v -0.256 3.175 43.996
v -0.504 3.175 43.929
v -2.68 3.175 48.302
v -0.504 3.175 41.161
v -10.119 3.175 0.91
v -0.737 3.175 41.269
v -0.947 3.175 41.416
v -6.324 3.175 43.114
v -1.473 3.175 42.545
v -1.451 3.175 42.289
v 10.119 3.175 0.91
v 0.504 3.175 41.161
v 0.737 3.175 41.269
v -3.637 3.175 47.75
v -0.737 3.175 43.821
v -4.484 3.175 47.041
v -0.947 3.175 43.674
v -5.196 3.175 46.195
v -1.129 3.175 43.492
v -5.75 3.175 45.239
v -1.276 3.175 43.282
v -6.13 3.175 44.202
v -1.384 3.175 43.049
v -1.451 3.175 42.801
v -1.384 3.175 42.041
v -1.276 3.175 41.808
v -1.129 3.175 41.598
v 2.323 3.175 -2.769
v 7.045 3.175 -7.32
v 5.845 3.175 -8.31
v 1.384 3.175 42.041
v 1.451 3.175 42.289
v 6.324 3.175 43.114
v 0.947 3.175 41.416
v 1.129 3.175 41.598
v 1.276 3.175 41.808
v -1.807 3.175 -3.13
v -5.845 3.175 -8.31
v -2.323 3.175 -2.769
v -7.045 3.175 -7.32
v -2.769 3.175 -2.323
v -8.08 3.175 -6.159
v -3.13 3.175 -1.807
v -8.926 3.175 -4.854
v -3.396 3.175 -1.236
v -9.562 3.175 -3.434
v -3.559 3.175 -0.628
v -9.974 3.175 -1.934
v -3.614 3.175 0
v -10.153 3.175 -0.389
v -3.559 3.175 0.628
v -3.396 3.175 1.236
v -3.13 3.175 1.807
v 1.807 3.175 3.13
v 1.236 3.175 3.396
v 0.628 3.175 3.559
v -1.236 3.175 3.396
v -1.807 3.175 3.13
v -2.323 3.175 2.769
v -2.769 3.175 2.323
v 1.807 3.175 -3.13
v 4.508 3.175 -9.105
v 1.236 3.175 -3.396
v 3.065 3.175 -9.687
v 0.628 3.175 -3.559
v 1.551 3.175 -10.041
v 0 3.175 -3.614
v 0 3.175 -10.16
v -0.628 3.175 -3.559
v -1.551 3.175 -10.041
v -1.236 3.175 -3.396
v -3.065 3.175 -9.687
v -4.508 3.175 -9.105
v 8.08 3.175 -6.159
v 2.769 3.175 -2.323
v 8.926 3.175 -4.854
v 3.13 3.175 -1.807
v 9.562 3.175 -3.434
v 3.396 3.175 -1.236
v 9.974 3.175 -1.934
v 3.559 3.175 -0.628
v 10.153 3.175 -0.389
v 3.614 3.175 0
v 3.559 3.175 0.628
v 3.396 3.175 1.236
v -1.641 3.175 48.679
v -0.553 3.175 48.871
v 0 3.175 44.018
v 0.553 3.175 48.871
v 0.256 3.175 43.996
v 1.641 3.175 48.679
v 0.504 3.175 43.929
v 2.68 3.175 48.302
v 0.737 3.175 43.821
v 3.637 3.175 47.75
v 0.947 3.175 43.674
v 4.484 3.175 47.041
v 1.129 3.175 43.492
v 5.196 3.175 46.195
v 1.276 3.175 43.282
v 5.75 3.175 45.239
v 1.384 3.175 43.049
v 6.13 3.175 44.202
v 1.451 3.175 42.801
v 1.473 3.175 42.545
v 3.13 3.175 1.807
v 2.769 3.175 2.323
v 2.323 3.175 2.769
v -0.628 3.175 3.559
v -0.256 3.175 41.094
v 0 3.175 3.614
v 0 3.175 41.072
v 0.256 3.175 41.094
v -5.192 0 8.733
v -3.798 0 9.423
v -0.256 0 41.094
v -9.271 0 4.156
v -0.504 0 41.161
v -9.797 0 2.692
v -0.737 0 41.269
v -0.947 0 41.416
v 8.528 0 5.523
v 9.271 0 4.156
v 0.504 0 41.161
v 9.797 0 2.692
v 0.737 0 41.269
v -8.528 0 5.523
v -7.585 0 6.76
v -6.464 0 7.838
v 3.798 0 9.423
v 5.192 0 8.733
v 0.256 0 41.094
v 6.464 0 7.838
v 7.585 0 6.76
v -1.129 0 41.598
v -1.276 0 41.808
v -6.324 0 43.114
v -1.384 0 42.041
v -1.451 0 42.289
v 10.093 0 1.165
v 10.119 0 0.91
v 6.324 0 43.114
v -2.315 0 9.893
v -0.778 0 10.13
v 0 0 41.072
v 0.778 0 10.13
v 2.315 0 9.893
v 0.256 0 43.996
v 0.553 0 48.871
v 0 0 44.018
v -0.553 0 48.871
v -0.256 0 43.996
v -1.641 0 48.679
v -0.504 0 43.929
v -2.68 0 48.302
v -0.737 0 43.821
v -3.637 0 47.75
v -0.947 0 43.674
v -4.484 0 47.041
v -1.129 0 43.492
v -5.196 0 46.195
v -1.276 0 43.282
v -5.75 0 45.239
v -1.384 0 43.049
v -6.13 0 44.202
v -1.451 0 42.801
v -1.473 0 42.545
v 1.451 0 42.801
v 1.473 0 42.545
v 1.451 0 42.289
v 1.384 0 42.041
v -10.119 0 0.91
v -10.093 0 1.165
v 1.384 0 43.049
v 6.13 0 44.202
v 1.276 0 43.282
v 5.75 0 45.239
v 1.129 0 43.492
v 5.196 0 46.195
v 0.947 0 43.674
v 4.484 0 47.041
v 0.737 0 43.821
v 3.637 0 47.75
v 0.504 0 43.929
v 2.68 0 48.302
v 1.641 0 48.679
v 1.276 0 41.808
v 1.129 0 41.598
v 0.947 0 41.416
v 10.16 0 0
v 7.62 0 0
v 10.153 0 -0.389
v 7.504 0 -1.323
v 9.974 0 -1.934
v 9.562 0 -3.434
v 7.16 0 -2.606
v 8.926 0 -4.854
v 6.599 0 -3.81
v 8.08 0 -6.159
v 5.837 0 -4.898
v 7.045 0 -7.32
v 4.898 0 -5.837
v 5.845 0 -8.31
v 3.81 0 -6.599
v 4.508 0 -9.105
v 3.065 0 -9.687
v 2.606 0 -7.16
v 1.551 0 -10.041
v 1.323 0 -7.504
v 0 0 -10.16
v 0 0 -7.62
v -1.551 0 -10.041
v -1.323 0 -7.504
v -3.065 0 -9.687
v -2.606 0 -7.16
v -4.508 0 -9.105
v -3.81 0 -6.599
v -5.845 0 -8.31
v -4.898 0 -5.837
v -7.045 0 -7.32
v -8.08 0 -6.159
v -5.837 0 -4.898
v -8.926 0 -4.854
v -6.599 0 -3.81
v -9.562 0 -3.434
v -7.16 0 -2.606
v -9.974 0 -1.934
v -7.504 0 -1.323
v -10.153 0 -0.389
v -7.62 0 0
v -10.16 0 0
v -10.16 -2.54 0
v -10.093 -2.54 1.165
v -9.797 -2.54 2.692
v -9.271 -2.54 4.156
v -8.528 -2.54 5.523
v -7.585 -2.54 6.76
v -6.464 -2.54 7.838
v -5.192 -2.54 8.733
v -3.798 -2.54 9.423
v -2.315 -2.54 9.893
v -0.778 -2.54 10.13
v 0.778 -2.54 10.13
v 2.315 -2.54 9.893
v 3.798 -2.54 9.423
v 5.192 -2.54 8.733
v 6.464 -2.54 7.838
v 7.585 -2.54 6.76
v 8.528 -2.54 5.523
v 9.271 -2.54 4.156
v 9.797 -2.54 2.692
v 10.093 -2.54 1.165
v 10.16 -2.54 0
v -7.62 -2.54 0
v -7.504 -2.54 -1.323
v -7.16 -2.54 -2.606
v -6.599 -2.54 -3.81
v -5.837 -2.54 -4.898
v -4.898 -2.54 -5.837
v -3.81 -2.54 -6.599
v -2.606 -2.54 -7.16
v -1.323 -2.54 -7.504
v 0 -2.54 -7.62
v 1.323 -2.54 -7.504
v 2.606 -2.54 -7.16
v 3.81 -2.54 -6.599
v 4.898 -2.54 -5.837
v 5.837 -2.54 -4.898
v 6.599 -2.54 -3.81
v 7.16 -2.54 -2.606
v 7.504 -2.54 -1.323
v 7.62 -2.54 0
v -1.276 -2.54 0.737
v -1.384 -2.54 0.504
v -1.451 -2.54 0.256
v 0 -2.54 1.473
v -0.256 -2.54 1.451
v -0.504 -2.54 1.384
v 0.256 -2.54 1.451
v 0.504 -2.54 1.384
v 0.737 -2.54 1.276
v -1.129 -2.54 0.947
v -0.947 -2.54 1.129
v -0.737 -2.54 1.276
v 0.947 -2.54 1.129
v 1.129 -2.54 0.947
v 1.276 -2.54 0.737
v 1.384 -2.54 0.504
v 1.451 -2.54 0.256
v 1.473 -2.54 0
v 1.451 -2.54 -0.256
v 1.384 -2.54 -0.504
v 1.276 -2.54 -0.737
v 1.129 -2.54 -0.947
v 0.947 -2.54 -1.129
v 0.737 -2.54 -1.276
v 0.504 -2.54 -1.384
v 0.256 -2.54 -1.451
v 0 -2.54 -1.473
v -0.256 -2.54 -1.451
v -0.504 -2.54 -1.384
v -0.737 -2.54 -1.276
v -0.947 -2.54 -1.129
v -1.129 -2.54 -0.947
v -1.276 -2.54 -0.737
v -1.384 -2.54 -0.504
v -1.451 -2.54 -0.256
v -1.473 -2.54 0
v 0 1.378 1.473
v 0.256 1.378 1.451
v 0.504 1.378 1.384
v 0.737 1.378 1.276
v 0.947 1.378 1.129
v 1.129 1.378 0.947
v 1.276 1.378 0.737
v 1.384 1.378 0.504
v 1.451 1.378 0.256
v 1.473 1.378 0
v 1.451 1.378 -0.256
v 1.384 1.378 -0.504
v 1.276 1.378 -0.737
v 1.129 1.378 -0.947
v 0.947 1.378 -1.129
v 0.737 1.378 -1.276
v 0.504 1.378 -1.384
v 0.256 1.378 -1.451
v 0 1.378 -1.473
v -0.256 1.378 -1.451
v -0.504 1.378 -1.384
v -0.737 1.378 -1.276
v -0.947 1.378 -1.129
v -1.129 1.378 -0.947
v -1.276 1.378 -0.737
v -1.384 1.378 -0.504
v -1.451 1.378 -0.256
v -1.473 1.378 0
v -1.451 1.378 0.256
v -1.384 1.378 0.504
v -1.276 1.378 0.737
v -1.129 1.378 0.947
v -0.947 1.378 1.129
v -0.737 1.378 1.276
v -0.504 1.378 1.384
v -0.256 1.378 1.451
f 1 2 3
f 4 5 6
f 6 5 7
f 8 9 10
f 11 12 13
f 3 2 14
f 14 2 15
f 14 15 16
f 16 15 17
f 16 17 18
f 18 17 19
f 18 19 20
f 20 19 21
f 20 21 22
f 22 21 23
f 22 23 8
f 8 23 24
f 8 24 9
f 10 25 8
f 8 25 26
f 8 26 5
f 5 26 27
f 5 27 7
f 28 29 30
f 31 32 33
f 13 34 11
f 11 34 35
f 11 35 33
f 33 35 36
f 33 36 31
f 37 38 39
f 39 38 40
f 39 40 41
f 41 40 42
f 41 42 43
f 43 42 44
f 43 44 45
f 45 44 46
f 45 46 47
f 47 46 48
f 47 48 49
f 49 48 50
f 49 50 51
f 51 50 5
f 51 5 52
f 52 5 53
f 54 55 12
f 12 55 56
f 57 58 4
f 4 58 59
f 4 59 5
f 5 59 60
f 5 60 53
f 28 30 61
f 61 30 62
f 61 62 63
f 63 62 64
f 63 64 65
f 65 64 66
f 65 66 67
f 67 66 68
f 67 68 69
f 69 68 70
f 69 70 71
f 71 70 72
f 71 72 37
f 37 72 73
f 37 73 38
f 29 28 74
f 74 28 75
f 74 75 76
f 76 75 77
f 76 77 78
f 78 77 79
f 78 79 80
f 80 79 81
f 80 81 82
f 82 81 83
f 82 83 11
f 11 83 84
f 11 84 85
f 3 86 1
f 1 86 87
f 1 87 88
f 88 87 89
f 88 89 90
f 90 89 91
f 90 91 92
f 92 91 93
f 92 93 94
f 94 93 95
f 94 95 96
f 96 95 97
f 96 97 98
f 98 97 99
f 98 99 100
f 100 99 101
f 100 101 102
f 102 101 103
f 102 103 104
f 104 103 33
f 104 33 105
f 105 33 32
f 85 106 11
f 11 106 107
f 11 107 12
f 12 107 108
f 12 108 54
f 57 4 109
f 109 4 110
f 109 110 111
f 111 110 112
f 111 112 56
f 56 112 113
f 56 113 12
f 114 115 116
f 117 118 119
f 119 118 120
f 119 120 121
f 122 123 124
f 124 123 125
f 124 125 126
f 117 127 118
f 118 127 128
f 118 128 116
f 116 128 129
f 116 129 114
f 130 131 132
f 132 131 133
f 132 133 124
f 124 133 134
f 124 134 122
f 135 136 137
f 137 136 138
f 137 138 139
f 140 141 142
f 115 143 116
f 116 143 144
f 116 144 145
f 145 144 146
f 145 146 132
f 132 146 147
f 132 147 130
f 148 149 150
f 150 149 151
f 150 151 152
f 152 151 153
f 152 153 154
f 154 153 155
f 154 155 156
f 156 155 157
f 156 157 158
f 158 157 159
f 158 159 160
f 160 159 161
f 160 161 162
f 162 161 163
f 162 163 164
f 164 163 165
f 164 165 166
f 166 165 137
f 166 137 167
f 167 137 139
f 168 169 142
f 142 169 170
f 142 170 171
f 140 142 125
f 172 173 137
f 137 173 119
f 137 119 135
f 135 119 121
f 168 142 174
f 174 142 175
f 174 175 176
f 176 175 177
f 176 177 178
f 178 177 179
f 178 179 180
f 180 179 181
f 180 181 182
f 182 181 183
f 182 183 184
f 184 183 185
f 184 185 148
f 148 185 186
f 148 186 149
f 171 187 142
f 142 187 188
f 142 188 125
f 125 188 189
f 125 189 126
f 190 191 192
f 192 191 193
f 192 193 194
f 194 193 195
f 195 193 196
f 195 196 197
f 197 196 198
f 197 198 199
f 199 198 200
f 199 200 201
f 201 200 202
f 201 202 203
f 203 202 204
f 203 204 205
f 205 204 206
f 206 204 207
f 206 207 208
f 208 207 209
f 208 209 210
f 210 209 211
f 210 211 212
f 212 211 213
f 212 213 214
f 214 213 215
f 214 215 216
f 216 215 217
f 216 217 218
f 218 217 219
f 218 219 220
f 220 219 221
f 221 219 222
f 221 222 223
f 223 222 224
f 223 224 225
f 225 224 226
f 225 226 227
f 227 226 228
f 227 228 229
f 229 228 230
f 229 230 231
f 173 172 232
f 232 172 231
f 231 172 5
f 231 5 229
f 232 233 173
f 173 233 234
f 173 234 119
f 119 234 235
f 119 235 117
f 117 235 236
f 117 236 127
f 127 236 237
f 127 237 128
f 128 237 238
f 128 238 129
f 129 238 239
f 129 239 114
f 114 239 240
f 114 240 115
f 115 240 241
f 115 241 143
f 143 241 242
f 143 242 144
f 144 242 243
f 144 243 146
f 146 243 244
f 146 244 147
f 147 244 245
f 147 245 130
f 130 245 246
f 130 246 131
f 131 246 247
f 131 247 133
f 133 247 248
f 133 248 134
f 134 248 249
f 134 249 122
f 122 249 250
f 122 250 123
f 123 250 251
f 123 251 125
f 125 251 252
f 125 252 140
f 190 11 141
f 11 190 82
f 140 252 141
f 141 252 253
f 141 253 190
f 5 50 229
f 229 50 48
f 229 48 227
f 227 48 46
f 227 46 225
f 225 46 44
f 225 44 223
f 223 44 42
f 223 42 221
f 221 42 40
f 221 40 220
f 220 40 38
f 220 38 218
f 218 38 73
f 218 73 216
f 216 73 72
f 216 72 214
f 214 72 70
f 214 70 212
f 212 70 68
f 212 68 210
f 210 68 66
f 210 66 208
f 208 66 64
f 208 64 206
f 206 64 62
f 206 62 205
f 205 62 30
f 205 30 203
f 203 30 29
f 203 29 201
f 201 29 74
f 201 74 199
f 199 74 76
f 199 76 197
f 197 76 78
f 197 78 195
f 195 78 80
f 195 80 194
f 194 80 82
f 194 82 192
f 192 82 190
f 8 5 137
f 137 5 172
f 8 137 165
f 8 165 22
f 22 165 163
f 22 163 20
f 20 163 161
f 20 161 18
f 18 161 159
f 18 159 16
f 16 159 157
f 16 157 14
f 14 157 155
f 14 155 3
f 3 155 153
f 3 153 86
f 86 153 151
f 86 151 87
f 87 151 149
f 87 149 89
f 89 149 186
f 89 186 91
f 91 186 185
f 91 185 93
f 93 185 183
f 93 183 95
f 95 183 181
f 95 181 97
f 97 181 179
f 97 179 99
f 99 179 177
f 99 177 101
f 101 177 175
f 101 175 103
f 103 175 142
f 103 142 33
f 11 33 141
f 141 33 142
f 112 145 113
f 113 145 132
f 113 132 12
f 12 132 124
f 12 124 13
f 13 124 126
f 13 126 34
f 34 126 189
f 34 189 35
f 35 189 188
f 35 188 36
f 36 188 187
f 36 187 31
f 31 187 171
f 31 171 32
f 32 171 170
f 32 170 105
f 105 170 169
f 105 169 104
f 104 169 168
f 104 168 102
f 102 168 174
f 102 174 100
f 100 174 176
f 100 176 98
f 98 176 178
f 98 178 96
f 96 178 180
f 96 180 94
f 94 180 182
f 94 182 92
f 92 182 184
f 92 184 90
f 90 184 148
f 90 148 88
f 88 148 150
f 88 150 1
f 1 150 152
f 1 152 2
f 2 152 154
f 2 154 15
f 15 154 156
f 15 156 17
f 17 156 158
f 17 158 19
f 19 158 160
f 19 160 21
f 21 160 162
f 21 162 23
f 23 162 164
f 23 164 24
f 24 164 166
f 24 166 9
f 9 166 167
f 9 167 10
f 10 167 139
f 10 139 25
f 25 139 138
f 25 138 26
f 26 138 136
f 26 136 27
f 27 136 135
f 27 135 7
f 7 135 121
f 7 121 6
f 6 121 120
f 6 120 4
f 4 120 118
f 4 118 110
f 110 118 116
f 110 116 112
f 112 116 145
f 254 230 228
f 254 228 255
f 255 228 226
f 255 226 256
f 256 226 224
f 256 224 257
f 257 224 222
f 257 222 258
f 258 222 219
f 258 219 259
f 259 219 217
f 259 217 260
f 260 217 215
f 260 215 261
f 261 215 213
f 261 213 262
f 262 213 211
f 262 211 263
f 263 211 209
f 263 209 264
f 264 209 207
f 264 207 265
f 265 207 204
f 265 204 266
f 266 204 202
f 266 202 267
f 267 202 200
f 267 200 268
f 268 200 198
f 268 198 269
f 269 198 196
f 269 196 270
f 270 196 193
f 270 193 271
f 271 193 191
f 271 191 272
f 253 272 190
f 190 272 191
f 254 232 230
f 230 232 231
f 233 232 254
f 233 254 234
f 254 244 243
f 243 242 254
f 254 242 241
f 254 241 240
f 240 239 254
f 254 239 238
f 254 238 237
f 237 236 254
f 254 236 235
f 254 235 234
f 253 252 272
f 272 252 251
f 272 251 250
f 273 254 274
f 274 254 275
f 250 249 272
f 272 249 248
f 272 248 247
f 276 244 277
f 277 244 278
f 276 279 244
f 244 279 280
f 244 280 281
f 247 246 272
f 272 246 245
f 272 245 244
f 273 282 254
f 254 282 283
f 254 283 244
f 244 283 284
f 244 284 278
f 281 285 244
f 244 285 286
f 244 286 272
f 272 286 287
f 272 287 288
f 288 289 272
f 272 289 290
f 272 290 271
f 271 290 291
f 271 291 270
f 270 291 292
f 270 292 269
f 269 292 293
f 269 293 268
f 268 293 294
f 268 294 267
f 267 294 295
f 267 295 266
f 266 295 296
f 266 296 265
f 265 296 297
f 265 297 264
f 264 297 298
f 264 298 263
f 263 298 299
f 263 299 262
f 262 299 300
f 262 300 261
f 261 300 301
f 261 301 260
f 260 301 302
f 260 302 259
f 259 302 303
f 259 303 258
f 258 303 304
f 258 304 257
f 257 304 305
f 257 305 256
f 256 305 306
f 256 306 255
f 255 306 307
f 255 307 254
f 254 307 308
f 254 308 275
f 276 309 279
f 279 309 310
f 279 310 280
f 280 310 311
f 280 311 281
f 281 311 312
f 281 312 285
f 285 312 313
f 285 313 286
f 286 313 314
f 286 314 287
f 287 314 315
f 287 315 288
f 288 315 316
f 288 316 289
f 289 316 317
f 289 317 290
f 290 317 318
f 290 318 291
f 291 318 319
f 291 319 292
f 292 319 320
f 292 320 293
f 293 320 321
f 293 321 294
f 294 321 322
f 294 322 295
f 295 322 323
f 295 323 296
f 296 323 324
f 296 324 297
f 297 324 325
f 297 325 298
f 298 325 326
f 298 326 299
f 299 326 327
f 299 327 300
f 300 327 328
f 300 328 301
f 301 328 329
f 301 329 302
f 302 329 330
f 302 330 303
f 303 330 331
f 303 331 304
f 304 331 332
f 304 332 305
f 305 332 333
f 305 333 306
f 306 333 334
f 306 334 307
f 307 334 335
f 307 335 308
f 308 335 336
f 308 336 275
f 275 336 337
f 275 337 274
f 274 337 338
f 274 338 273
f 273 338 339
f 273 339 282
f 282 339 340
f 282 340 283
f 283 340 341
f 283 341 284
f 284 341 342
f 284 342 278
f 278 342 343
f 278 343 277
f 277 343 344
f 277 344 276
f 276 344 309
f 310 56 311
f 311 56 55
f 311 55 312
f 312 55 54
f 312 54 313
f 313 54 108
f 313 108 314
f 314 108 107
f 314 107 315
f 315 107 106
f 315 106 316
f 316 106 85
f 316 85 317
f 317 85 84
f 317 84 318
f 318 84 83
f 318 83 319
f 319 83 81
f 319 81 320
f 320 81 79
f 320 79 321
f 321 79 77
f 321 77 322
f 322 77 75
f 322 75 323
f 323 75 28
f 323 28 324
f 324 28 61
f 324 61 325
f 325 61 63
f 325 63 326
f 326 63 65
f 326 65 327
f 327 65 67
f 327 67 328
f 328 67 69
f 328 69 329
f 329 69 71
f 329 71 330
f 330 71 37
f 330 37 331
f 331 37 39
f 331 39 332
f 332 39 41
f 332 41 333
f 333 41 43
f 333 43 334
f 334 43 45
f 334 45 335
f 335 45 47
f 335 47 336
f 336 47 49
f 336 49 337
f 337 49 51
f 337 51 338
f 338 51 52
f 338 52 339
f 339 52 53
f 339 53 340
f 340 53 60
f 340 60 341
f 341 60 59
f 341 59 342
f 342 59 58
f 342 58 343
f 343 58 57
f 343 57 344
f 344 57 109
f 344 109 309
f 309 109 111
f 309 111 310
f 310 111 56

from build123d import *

# Parameters (mm, degrees)
SKETCH1_R                                         = 1.4732
BOSS_EXTRUDE1_DEPTH                               = 3.175
BOSS_EXTRUDE2_START                               = 2.54
BOSS_EXTRUDE2_DEPTH                               = 2.54
CSK_FOR_4_FLAT_HEAD_MACHINE_SCREW_100_D           = 2.9464
CSK_FOR_4_FLAT_HEAD_MACHINE_SCREW_100_CSINK_D     = 7.2285352
CSK_FOR_4_FLAT_HEAD_MACHINE_SCREW_100_CSINK_ANGLE = 100


with BuildPart() as part:
    # Sketch1 → Boss-Extrude1 (new body)
    with BuildSketch(Plane(origin=(0, 0, 0), x_dir=(1, 0, 0), z_dir=(0, 1, 0))):
        with BuildLine():
            Line((-10.119178406, -0.909850746), (-6.324486504, -43.113656716))
            ThreePointArc((-6.324486504, -43.113656716), (0, -48.895), (6.324486504, -43.113656716))
            Line((6.324486504, -43.113656716), (10.119178406, -0.909850746))
            ThreePointArc((10.119178406, -0.909850746), (0, 10.16), (-10.119178406, -0.909850746))
        make_face()
        with Locations(Location((0, -42.545, 0), (0, 0, 270))):
            Circle(SKETCH1_R, mode=Mode.SUBTRACT)
    extrude(amount=BOSS_EXTRUDE1_DEPTH)

    # Sketch2 → Boss-Extrude2 (add)
    with BuildSketch(Plane.XZ.offset(BOSS_EXTRUDE2_START)):
        with BuildLine():
            Line((7.62, 0), (10.16, 0))
            ThreePointArc((10.16, 0), (0, 10.16), (-10.16, 0))
            Line((-10.16, 0), (-7.62, 0))
            ThreePointArc((-7.62, 0), (0, -7.62), (7.62, 0))
        make_face()
    extrude(amount=-BOSS_EXTRUDE2_DEPTH)

    # CSK for #4 Flat Head Machine Screw (100)1 (through all)
    with Locations(Plane(origin=(0, 3.175, 0), x_dir=(1, 0, 0), z_dir=(0, 1, 0))):
        with Locations((0, 0)):
            CounterSinkHole(CSK_FOR_4_FLAT_HEAD_MACHINE_SCREW_100_D / 2, CSK_FOR_4_FLAT_HEAD_MACHINE_SCREW_100_CSINK_D / 2, counter_sink_angle=CSK_FOR_4_FLAT_HEAD_MACHINE_SCREW_100_CSINK_ANGLE)


solid = part.part
